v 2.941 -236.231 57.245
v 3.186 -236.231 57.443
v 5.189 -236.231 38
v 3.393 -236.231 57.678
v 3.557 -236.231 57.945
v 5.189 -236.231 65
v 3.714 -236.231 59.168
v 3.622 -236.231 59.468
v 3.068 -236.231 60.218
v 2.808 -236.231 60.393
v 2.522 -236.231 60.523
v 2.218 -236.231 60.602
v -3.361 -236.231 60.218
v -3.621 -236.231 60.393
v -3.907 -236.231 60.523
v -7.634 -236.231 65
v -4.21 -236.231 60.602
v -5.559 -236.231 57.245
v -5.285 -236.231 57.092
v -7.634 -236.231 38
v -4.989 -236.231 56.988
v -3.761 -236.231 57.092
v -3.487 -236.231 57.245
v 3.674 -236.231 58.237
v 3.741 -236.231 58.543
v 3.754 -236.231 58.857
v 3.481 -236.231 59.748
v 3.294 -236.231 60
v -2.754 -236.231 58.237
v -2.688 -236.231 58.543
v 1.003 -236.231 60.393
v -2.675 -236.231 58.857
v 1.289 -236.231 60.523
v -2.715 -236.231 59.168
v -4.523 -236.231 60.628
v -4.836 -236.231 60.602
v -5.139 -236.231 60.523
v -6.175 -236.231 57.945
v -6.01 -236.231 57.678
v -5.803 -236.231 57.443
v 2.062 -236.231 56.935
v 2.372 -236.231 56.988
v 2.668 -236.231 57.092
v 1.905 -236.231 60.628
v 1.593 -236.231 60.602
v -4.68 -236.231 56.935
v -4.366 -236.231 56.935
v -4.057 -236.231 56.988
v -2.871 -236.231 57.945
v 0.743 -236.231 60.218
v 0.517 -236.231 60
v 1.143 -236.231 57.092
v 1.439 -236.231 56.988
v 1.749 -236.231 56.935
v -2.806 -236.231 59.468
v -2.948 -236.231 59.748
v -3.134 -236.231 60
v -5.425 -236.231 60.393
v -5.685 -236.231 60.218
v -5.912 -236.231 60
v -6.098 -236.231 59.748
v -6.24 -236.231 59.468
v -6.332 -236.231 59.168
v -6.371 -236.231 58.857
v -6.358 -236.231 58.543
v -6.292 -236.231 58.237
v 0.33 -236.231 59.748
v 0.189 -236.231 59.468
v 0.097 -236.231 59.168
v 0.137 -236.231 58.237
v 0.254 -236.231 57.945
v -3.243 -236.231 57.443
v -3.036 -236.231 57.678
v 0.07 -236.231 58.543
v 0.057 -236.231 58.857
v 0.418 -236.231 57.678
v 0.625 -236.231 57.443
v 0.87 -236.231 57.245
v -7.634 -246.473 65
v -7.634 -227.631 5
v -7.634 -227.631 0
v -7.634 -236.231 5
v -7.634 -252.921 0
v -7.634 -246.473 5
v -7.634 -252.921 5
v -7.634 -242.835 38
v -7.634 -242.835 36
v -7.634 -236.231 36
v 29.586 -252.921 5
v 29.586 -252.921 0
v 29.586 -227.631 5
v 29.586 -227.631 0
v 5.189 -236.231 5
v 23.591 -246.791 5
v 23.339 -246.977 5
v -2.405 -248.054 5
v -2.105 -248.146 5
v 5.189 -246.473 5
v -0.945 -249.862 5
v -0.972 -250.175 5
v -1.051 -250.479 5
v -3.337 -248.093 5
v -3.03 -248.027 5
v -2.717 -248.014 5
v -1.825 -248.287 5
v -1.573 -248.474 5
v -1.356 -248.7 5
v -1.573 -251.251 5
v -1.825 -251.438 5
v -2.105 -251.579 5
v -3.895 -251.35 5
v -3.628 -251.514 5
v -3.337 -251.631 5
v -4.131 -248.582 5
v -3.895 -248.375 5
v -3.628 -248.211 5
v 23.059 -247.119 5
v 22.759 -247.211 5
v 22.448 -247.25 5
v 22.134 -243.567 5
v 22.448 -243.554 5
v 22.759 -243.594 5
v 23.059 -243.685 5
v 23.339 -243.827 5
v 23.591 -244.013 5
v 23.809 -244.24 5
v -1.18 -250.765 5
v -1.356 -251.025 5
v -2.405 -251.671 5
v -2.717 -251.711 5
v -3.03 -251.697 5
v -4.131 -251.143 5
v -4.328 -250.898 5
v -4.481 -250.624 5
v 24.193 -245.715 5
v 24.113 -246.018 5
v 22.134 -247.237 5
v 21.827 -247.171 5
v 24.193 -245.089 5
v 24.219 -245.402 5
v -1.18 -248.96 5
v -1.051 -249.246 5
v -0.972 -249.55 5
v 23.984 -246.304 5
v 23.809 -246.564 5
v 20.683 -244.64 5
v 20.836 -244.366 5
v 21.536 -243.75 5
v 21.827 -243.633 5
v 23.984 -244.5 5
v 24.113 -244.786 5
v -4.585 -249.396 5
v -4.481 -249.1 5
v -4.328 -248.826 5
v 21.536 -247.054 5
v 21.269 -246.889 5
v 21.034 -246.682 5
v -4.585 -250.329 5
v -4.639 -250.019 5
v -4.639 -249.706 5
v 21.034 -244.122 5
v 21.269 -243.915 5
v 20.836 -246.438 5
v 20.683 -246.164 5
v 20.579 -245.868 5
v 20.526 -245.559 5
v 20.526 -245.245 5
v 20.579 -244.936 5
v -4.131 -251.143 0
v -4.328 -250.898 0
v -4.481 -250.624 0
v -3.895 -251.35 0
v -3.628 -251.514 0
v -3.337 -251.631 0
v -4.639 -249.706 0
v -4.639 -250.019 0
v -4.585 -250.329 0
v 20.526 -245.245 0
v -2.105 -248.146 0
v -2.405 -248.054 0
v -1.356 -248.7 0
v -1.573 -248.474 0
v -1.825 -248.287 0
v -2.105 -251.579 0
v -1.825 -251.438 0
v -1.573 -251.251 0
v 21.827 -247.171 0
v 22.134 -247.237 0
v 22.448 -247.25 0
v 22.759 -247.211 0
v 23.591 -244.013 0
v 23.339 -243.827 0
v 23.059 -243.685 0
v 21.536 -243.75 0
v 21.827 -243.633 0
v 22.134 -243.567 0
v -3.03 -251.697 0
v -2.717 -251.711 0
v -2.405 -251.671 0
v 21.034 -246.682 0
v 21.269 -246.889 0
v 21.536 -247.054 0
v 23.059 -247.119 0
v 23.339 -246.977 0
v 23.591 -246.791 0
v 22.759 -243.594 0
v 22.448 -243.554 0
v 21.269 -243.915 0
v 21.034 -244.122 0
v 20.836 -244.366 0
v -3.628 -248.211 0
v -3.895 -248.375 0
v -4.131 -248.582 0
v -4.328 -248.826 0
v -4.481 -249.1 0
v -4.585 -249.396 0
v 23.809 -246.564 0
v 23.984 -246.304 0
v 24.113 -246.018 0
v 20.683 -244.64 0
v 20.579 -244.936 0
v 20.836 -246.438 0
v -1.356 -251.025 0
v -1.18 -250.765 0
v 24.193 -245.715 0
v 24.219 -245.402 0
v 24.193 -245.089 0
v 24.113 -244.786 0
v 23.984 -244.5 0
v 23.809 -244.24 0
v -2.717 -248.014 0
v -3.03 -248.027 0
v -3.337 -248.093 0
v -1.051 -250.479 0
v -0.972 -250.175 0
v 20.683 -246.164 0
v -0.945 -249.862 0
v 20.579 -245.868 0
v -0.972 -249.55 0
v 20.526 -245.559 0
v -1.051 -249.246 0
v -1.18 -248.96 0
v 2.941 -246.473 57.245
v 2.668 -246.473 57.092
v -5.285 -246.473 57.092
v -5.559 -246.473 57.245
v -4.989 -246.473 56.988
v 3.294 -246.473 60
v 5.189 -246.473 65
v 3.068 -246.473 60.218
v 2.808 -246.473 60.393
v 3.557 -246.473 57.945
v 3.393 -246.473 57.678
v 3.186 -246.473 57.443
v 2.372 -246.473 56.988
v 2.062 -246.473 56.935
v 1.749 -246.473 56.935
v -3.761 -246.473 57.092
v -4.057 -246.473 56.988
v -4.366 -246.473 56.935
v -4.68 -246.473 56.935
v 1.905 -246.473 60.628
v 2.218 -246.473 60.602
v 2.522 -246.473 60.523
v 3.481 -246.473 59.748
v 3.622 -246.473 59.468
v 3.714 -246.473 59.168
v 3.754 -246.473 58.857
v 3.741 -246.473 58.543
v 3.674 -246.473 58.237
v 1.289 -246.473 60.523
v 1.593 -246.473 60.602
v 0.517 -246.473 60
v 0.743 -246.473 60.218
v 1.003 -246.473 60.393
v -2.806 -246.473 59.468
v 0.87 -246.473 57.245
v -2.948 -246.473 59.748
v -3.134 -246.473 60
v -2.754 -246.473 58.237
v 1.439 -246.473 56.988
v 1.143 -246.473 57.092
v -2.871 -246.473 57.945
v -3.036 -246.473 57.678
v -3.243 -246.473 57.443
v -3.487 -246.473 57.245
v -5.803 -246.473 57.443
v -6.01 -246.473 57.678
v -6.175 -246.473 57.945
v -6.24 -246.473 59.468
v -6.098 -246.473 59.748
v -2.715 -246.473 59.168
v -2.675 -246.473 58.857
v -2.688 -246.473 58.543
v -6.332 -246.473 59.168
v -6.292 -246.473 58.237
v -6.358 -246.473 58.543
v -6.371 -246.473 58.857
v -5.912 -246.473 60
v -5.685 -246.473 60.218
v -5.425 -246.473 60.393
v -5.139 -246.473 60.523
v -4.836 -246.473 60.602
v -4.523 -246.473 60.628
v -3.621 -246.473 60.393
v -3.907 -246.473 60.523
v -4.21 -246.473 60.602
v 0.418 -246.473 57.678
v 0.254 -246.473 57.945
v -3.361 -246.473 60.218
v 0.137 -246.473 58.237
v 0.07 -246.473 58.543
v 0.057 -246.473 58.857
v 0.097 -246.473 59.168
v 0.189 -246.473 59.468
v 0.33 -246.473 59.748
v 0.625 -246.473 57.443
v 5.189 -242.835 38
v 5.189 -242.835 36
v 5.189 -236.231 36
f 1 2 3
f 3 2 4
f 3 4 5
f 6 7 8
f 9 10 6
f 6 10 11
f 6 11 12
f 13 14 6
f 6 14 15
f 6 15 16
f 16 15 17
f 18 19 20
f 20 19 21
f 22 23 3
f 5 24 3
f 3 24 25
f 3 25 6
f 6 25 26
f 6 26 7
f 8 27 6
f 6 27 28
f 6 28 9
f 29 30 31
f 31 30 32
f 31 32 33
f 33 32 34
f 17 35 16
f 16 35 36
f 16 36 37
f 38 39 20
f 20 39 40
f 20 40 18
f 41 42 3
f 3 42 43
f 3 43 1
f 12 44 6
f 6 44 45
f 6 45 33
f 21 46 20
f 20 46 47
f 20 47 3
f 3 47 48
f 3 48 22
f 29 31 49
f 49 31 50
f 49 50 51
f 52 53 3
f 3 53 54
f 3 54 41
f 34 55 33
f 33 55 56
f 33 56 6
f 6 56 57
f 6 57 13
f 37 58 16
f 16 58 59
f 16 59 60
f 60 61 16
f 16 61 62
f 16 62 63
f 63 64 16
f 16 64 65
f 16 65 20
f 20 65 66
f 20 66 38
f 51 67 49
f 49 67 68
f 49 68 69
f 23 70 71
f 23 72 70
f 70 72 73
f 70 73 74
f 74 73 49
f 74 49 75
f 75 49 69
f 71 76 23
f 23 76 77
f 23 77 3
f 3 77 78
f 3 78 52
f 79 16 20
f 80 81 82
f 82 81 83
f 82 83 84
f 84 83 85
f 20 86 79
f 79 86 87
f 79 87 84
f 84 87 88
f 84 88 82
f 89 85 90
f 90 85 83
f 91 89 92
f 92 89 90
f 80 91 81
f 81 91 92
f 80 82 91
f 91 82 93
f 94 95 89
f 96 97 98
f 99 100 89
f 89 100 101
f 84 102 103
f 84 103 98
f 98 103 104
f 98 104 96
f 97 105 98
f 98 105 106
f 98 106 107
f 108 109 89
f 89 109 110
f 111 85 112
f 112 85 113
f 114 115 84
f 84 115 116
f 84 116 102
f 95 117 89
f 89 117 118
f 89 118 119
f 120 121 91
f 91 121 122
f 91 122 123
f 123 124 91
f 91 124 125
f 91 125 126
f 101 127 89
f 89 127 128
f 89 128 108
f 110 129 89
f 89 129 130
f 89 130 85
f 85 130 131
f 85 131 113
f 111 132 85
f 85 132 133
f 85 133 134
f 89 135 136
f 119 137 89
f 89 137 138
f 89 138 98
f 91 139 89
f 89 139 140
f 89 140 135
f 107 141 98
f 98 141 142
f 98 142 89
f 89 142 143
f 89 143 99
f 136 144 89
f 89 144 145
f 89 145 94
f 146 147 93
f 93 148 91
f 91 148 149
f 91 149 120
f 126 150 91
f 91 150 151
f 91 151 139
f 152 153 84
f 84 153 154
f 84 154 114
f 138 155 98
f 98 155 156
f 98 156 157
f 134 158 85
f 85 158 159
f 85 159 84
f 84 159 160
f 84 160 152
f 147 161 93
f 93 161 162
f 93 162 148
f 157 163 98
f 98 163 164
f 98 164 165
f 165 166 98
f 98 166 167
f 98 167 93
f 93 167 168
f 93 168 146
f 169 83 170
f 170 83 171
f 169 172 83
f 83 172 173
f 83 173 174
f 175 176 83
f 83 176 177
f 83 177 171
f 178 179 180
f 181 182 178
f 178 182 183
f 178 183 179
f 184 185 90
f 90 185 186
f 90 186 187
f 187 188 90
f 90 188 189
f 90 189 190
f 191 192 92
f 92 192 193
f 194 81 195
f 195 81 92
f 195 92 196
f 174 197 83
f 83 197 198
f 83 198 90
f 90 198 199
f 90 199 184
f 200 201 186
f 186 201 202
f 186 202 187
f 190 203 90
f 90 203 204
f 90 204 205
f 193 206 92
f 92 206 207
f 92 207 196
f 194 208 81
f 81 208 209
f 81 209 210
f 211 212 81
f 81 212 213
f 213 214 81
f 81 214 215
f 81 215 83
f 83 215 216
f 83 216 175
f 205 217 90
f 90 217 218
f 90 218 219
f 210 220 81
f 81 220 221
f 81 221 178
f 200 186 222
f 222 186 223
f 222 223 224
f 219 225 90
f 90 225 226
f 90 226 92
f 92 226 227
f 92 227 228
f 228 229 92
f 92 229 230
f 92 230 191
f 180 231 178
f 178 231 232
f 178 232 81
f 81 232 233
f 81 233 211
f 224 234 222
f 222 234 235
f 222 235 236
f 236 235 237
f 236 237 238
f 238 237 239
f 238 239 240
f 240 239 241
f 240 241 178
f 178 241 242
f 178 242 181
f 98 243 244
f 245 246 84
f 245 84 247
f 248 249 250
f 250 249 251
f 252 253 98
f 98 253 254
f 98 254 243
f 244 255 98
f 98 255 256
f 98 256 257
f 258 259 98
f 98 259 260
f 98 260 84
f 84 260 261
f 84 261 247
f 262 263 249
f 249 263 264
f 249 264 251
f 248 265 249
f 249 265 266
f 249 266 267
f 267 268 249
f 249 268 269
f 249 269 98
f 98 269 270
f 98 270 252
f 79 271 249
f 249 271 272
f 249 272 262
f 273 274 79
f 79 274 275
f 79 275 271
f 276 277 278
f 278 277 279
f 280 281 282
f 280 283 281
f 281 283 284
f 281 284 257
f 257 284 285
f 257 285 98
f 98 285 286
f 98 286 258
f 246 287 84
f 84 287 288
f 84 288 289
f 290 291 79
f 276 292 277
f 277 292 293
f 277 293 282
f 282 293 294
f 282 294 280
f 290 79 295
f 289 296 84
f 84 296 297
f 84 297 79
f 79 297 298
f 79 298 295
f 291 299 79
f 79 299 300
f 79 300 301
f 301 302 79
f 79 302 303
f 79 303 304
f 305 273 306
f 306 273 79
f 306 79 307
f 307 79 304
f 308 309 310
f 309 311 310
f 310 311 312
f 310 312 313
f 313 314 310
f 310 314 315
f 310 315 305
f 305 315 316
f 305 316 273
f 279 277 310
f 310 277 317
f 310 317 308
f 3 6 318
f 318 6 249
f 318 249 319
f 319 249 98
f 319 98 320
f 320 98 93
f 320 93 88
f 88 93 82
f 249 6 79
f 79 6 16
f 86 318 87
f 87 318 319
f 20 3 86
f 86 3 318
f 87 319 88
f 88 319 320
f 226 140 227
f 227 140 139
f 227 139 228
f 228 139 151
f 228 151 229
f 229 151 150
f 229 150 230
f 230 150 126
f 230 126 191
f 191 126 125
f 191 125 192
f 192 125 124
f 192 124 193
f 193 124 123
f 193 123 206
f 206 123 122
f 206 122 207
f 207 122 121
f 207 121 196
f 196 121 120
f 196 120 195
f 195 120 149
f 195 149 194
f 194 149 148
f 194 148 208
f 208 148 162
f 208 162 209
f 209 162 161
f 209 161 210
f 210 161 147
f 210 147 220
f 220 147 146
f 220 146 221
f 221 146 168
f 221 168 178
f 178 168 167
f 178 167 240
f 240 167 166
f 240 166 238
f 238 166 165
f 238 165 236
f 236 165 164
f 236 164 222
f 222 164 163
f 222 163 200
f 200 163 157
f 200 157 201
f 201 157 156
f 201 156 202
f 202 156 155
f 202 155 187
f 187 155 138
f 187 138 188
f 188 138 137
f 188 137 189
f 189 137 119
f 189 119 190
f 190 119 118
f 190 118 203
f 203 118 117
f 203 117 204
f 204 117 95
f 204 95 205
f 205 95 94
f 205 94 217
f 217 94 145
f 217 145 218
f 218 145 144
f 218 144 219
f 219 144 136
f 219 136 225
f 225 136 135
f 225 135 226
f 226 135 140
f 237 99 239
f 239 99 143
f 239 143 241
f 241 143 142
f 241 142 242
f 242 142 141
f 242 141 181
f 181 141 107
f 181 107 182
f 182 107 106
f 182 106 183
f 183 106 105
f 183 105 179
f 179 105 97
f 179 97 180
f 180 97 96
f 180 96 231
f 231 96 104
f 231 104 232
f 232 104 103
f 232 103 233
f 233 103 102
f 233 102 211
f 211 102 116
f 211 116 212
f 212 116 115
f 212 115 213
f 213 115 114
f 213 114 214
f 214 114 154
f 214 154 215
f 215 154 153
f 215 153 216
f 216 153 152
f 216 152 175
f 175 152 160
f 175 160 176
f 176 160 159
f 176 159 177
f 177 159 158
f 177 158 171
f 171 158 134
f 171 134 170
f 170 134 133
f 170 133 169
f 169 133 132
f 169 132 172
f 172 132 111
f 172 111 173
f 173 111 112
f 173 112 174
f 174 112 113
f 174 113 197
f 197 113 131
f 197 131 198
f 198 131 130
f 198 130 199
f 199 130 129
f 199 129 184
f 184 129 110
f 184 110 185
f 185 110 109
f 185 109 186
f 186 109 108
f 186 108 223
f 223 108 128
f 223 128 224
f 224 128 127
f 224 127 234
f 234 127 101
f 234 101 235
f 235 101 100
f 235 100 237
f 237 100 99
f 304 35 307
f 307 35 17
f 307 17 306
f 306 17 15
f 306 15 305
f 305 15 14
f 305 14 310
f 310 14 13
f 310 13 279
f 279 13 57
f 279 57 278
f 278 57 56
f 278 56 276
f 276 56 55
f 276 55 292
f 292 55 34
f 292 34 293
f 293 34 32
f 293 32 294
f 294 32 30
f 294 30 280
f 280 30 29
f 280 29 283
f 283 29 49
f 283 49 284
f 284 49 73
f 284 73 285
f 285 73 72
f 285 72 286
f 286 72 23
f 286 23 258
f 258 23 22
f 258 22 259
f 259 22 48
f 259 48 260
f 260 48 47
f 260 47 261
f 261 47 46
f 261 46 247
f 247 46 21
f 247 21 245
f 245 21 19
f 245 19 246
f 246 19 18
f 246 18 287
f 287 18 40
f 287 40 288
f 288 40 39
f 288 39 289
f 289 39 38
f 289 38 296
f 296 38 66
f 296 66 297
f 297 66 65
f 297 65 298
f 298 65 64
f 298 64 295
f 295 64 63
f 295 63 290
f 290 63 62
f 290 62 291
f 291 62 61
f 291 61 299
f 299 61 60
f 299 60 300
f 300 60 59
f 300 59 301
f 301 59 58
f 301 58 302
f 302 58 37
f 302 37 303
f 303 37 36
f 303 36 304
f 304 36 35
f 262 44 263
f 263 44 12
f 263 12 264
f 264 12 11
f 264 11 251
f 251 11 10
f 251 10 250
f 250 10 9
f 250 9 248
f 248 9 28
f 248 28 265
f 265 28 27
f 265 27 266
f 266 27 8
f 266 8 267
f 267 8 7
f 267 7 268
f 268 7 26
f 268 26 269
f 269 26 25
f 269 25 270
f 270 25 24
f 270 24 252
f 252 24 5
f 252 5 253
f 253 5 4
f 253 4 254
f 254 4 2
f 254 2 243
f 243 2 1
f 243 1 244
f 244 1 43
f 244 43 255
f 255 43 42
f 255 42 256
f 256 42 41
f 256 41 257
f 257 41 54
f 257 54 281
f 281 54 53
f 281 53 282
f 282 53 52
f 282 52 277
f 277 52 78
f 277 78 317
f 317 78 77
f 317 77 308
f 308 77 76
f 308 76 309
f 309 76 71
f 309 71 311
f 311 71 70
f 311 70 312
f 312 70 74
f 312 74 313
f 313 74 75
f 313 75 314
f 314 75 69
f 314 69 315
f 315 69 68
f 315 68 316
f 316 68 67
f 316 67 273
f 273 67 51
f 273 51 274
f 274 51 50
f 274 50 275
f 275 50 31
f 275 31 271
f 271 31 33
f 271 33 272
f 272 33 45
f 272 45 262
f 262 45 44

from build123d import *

# Parameters (mm, degrees)
CROQUIS2_W              = 37.219606625
CROQUIS2_H              = 25.289645753
SALIENTE_EXTRUIR1_DEPTH = 5
CROQUIS3_W              = 12.822792139
CROQUIS3_H              = 10.241869911
SALIENTE_EXTRUIR2_DEPTH = 60
CROQUIS4_W              = 2
CROQUIS4_H              = 6.778219121
CORTAR_EXTRUIR1_DEPTH   = 60
CORTAR_EXTRUIR2_REACH   = 263.618
CROQUIS5_R              = 1.85
CROQUIS6_R              = 1.85
CORTAR_EXTRUIR3_DEPTH   = 74.340748192


with BuildPart() as part:
    # Croquis2 → Saliente-Extruir1 (new body)
    with BuildSketch(Plane.XY):
        with Locations((10.975865795, -240.275746154)):
            Rectangle(CROQUIS2_W, CROQUIS2_H)
    extrude(amount=SALIENTE_EXTRUIR1_DEPTH)

    # Croquis3 → Saliente-Extruir2 (add)
    with BuildSketch(Plane.XY.offset(5)):
        with Locations((-1.222541449, -241.35158101)):
            Rectangle(CROQUIS3_W, CROQUIS3_H)
    extrude(amount=SALIENTE_EXTRUIR2_DEPTH)

    # Croquis4 → Cortar-Extruir1 (cut)
    with BuildSketch(Plane.ZY.offset(7.633937518)):
        with Locations((37, -239.446035793)):
            Rectangle(CROQUIS4_W, CROQUIS4_H)
    extrude(amount=-CORTAR_EXTRUIR1_DEPTH, mode=Mode.SUBTRACT)

    # Croquis5 → Cortar-Extruir2 (cut, up to next)
    with BuildSketch(Plane.XY.offset(5), mode=Mode.PRIVATE) as cortar_extruir2_sk1:
        with Locations((-2.795177489, -249.862416258)):
            Circle(CROQUIS5_R)
    cortar_extruir2_tool1 = extrude(cortar_extruir2_sk1.sketch, amount=-CORTAR_EXTRUIR2_REACH, mode=Mode.PRIVATE) & part.part
    # Croquis5 → Cortar-Extruir2 (cut, up to next)
    with BuildSketch(Plane.XY.offset(5), mode=Mode.PRIVATE) as cortar_extruir2_sk2:
        with Locations((22.369152578, -245.40207204)):
            Circle(CROQUIS5_R)
    cortar_extruir2_tool2 = extrude(cortar_extruir2_sk2.sketch, amount=-CORTAR_EXTRUIR2_REACH, mode=Mode.PRIVATE) & part.part
    add(cortar_extruir2_tool1.solids().sort_by_distance((-2.795177, -249.862416, 5))[0], mode=Mode.SUBTRACT)
    add(cortar_extruir2_tool2.solids().sort_by_distance((22.369153, -245.402072, 5))[0], mode=Mode.SUBTRACT)

    # Croquis6 → Cortar-Extruir3 (cut, through all)
    with BuildSketch(Plane(origin=(0, -236.230646054, 0), x_dir=(1, 0, 0), z_dir=(0, 1, 0))):
        with Locations(Location((1.905498405, -58.778240746, 0), (0, 0, 270))):
            Circle(CROQUIS6_R)
        with Locations(Location((-4.523066348, -58.778240746, 0), (0, 0, 270))):
            Circle(CROQUIS6_R)
    extrude(amount=-CORTAR_EXTRUIR3_DEPTH, mode=Mode.SUBTRACT)


solid = part.part
